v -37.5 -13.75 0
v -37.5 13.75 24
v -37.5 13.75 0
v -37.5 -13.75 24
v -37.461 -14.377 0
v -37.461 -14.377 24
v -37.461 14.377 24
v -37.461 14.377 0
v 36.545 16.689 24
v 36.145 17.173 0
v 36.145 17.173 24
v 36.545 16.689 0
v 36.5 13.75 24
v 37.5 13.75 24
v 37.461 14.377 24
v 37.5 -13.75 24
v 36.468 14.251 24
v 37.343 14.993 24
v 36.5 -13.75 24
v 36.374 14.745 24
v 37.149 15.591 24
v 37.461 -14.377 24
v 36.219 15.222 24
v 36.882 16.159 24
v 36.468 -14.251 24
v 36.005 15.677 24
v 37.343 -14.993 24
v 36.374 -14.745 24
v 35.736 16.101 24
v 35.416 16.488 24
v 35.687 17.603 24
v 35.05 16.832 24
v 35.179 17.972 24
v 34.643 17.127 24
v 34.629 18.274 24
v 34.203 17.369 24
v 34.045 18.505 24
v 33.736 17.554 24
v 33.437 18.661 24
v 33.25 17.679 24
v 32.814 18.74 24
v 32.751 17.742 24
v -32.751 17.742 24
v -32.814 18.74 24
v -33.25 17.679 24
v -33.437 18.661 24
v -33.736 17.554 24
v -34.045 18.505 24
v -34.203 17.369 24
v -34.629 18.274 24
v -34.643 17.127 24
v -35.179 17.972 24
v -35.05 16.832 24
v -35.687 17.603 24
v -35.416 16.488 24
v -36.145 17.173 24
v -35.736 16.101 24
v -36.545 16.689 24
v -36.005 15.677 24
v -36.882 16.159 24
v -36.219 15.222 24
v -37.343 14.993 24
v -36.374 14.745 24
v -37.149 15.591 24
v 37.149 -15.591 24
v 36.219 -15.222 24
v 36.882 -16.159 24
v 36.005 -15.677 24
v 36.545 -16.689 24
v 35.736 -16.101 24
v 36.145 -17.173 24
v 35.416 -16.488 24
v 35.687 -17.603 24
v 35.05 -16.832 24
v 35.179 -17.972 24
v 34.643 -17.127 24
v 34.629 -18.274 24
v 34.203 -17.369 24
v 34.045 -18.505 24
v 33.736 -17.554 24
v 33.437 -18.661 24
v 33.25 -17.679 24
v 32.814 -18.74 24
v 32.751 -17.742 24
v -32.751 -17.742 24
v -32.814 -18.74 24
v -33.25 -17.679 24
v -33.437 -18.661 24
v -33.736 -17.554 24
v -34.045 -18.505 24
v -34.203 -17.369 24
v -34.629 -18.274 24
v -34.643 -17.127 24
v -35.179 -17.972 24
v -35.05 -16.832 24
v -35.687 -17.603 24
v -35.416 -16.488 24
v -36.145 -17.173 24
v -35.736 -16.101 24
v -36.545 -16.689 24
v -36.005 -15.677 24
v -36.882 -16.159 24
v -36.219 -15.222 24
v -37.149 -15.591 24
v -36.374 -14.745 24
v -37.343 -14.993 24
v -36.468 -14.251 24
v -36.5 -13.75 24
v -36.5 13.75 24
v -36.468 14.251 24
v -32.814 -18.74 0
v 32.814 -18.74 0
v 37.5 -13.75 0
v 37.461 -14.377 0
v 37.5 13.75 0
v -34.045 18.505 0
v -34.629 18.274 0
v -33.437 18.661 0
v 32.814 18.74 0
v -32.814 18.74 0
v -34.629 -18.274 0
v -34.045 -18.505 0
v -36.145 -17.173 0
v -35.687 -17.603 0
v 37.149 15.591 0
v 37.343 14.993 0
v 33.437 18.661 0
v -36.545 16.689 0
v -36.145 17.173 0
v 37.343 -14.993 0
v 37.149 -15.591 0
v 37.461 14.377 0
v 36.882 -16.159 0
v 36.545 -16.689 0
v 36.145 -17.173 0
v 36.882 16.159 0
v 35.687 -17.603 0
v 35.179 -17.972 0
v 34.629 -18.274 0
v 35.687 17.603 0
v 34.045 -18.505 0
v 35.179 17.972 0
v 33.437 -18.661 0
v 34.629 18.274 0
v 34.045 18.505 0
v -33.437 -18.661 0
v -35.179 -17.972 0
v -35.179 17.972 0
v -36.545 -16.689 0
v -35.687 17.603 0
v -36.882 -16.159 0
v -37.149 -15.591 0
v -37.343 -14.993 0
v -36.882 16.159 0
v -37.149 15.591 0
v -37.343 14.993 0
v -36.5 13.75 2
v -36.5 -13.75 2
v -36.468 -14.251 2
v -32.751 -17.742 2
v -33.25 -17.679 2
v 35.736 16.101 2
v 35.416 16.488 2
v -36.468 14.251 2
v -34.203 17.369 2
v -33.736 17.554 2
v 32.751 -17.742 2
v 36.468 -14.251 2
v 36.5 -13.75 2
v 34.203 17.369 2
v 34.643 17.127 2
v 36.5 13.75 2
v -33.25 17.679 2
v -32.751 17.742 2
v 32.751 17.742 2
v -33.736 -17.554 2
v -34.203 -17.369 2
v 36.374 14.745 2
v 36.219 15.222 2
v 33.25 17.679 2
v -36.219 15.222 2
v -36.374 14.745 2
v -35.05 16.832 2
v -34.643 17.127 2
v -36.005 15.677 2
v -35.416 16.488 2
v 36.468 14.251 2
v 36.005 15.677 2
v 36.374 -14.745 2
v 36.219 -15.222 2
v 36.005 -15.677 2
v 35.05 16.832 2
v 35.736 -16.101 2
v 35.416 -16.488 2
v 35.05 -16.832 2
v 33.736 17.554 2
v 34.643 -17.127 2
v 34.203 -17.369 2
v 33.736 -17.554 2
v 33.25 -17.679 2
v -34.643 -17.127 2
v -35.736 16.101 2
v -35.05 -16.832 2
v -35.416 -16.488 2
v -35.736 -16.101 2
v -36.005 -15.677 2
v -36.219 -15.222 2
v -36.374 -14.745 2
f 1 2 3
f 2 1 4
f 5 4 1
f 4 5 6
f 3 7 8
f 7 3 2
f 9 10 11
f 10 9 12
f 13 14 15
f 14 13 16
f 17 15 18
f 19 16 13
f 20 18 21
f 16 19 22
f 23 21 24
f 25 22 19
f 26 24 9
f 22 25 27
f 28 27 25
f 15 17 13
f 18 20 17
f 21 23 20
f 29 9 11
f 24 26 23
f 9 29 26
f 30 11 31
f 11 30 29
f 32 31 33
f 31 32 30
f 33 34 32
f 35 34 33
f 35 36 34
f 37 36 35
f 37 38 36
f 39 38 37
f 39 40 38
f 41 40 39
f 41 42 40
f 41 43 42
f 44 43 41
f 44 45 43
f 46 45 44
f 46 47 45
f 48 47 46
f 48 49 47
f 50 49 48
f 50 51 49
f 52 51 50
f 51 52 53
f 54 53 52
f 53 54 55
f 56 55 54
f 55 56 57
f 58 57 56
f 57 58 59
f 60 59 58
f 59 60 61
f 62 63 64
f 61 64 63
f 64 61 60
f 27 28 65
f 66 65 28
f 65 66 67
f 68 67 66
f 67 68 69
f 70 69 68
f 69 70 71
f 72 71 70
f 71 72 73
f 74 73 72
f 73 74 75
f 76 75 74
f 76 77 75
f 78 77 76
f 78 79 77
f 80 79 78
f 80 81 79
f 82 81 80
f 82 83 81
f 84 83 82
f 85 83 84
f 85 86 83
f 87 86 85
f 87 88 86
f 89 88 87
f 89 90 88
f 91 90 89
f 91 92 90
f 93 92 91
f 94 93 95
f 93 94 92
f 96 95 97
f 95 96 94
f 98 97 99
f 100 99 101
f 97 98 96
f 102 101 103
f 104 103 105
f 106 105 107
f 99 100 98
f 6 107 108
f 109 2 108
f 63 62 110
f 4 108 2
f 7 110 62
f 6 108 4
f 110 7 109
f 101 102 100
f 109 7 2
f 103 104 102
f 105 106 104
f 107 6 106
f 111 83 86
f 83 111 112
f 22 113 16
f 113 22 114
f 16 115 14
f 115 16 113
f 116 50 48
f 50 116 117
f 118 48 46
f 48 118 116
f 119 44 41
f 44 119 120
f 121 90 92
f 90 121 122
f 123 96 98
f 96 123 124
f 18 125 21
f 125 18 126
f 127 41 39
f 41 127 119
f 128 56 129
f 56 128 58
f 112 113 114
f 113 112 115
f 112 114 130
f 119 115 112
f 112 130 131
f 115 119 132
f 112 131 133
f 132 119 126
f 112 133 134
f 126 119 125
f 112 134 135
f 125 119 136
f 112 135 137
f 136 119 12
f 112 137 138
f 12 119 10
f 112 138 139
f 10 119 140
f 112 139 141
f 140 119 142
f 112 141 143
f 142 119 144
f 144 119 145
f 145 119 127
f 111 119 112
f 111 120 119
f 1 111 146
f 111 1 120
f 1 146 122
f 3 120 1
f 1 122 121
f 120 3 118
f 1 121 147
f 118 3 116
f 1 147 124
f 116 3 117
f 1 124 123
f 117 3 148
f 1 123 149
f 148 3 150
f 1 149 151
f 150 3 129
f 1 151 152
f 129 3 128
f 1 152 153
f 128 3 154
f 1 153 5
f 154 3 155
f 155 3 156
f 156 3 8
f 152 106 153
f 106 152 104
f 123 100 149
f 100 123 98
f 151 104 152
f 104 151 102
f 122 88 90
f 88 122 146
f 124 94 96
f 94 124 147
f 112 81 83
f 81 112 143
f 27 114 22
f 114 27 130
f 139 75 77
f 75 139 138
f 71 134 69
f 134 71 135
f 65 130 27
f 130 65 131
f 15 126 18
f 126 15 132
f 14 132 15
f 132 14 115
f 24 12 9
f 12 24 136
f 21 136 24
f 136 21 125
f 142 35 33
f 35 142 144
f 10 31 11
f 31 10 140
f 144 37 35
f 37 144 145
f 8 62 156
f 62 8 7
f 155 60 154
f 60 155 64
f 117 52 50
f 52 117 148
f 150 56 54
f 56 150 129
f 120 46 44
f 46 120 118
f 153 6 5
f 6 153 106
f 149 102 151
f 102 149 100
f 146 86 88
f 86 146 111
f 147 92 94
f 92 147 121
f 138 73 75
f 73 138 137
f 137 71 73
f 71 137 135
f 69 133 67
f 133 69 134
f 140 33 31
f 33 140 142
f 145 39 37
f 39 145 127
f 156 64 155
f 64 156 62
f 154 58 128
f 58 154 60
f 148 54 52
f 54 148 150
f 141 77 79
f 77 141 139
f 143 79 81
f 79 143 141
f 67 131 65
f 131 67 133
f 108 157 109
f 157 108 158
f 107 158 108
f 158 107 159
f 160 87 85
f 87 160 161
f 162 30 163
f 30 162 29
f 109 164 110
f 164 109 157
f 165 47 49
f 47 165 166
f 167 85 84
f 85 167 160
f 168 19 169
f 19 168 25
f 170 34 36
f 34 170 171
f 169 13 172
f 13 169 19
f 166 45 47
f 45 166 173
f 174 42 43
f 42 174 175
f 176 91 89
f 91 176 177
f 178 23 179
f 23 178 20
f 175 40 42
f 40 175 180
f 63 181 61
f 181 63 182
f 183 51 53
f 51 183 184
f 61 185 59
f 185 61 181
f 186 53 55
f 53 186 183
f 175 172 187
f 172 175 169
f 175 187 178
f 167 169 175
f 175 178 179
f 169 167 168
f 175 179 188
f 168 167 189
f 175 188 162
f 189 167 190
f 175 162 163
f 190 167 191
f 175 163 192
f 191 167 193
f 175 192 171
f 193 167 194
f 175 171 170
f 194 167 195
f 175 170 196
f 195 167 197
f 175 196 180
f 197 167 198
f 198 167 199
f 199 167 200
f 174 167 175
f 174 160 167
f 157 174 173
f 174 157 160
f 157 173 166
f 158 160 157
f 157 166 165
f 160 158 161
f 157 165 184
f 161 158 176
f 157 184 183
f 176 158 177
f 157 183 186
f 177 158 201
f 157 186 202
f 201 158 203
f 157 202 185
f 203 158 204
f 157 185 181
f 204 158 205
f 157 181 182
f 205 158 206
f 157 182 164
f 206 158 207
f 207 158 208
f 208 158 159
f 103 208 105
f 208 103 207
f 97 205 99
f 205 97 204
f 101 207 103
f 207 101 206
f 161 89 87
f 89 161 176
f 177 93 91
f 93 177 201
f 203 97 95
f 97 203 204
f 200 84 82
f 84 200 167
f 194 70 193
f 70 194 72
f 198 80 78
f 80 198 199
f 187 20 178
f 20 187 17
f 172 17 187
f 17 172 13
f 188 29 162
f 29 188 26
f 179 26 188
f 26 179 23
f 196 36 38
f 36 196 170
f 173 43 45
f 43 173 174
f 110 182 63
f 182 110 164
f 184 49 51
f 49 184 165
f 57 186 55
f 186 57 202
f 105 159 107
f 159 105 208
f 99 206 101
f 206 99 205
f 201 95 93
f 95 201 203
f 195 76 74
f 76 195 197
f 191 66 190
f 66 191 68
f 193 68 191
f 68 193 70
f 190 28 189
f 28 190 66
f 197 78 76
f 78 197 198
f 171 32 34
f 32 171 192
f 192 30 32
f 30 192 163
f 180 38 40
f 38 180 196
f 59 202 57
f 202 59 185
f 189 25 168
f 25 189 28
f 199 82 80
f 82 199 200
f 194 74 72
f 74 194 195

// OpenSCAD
$fn = 50;


difference() {
	union() {
		hull() {
			translate(v = [-32.5000000000, 13.7500000000, 0]) {
				cylinder(h = 24, r = 5);
			}
			translate(v = [32.5000000000, 13.7500000000, 0]) {
				cylinder(h = 24, r = 5);
			}
			translate(v = [-32.5000000000, -13.7500000000, 0]) {
				cylinder(h = 24, r = 5);
			}
			translate(v = [32.5000000000, -13.7500000000, 0]) {
				cylinder(h = 24, r = 5);
			}
		}
	}
	union() {
		translate(v = [0, 0, 2]) {
			#hull() {
				translate(v = [-32.5000000000, 13.7500000000, 0]) {
					cylinder(h = 22, r = 4);
				}
				translate(v = [32.5000000000, 13.7500000000, 0]) {
					cylinder(h = 22, r = 4);
				}
				translate(v = [-32.5000000000, -13.7500000000, 0]) {
					cylinder(h = 22, r = 4);
				}
				translate(v = [32.5000000000, -13.7500000000, 0]) {
					cylinder(h = 22, r = 4);
				}
			}
		}
	}
}
